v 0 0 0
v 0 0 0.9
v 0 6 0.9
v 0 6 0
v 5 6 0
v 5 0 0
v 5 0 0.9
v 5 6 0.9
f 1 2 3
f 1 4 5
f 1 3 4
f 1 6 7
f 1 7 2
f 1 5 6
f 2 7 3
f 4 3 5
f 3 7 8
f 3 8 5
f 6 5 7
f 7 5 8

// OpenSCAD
/* Warning, this is a very basic generator with a lot of approximation 
input data : [VQFN, PKA, 5x6x0.9mm, 28, , A, C04-01120A]
generated by com.zoubworld.electronics.cad.model3d.Basic
Date : Sun Feb 15 10:50:49 CET 2026
*/

//body
color("black")
translate([0,0,0])
cube([5.0,6.0,0.9], center=false);
